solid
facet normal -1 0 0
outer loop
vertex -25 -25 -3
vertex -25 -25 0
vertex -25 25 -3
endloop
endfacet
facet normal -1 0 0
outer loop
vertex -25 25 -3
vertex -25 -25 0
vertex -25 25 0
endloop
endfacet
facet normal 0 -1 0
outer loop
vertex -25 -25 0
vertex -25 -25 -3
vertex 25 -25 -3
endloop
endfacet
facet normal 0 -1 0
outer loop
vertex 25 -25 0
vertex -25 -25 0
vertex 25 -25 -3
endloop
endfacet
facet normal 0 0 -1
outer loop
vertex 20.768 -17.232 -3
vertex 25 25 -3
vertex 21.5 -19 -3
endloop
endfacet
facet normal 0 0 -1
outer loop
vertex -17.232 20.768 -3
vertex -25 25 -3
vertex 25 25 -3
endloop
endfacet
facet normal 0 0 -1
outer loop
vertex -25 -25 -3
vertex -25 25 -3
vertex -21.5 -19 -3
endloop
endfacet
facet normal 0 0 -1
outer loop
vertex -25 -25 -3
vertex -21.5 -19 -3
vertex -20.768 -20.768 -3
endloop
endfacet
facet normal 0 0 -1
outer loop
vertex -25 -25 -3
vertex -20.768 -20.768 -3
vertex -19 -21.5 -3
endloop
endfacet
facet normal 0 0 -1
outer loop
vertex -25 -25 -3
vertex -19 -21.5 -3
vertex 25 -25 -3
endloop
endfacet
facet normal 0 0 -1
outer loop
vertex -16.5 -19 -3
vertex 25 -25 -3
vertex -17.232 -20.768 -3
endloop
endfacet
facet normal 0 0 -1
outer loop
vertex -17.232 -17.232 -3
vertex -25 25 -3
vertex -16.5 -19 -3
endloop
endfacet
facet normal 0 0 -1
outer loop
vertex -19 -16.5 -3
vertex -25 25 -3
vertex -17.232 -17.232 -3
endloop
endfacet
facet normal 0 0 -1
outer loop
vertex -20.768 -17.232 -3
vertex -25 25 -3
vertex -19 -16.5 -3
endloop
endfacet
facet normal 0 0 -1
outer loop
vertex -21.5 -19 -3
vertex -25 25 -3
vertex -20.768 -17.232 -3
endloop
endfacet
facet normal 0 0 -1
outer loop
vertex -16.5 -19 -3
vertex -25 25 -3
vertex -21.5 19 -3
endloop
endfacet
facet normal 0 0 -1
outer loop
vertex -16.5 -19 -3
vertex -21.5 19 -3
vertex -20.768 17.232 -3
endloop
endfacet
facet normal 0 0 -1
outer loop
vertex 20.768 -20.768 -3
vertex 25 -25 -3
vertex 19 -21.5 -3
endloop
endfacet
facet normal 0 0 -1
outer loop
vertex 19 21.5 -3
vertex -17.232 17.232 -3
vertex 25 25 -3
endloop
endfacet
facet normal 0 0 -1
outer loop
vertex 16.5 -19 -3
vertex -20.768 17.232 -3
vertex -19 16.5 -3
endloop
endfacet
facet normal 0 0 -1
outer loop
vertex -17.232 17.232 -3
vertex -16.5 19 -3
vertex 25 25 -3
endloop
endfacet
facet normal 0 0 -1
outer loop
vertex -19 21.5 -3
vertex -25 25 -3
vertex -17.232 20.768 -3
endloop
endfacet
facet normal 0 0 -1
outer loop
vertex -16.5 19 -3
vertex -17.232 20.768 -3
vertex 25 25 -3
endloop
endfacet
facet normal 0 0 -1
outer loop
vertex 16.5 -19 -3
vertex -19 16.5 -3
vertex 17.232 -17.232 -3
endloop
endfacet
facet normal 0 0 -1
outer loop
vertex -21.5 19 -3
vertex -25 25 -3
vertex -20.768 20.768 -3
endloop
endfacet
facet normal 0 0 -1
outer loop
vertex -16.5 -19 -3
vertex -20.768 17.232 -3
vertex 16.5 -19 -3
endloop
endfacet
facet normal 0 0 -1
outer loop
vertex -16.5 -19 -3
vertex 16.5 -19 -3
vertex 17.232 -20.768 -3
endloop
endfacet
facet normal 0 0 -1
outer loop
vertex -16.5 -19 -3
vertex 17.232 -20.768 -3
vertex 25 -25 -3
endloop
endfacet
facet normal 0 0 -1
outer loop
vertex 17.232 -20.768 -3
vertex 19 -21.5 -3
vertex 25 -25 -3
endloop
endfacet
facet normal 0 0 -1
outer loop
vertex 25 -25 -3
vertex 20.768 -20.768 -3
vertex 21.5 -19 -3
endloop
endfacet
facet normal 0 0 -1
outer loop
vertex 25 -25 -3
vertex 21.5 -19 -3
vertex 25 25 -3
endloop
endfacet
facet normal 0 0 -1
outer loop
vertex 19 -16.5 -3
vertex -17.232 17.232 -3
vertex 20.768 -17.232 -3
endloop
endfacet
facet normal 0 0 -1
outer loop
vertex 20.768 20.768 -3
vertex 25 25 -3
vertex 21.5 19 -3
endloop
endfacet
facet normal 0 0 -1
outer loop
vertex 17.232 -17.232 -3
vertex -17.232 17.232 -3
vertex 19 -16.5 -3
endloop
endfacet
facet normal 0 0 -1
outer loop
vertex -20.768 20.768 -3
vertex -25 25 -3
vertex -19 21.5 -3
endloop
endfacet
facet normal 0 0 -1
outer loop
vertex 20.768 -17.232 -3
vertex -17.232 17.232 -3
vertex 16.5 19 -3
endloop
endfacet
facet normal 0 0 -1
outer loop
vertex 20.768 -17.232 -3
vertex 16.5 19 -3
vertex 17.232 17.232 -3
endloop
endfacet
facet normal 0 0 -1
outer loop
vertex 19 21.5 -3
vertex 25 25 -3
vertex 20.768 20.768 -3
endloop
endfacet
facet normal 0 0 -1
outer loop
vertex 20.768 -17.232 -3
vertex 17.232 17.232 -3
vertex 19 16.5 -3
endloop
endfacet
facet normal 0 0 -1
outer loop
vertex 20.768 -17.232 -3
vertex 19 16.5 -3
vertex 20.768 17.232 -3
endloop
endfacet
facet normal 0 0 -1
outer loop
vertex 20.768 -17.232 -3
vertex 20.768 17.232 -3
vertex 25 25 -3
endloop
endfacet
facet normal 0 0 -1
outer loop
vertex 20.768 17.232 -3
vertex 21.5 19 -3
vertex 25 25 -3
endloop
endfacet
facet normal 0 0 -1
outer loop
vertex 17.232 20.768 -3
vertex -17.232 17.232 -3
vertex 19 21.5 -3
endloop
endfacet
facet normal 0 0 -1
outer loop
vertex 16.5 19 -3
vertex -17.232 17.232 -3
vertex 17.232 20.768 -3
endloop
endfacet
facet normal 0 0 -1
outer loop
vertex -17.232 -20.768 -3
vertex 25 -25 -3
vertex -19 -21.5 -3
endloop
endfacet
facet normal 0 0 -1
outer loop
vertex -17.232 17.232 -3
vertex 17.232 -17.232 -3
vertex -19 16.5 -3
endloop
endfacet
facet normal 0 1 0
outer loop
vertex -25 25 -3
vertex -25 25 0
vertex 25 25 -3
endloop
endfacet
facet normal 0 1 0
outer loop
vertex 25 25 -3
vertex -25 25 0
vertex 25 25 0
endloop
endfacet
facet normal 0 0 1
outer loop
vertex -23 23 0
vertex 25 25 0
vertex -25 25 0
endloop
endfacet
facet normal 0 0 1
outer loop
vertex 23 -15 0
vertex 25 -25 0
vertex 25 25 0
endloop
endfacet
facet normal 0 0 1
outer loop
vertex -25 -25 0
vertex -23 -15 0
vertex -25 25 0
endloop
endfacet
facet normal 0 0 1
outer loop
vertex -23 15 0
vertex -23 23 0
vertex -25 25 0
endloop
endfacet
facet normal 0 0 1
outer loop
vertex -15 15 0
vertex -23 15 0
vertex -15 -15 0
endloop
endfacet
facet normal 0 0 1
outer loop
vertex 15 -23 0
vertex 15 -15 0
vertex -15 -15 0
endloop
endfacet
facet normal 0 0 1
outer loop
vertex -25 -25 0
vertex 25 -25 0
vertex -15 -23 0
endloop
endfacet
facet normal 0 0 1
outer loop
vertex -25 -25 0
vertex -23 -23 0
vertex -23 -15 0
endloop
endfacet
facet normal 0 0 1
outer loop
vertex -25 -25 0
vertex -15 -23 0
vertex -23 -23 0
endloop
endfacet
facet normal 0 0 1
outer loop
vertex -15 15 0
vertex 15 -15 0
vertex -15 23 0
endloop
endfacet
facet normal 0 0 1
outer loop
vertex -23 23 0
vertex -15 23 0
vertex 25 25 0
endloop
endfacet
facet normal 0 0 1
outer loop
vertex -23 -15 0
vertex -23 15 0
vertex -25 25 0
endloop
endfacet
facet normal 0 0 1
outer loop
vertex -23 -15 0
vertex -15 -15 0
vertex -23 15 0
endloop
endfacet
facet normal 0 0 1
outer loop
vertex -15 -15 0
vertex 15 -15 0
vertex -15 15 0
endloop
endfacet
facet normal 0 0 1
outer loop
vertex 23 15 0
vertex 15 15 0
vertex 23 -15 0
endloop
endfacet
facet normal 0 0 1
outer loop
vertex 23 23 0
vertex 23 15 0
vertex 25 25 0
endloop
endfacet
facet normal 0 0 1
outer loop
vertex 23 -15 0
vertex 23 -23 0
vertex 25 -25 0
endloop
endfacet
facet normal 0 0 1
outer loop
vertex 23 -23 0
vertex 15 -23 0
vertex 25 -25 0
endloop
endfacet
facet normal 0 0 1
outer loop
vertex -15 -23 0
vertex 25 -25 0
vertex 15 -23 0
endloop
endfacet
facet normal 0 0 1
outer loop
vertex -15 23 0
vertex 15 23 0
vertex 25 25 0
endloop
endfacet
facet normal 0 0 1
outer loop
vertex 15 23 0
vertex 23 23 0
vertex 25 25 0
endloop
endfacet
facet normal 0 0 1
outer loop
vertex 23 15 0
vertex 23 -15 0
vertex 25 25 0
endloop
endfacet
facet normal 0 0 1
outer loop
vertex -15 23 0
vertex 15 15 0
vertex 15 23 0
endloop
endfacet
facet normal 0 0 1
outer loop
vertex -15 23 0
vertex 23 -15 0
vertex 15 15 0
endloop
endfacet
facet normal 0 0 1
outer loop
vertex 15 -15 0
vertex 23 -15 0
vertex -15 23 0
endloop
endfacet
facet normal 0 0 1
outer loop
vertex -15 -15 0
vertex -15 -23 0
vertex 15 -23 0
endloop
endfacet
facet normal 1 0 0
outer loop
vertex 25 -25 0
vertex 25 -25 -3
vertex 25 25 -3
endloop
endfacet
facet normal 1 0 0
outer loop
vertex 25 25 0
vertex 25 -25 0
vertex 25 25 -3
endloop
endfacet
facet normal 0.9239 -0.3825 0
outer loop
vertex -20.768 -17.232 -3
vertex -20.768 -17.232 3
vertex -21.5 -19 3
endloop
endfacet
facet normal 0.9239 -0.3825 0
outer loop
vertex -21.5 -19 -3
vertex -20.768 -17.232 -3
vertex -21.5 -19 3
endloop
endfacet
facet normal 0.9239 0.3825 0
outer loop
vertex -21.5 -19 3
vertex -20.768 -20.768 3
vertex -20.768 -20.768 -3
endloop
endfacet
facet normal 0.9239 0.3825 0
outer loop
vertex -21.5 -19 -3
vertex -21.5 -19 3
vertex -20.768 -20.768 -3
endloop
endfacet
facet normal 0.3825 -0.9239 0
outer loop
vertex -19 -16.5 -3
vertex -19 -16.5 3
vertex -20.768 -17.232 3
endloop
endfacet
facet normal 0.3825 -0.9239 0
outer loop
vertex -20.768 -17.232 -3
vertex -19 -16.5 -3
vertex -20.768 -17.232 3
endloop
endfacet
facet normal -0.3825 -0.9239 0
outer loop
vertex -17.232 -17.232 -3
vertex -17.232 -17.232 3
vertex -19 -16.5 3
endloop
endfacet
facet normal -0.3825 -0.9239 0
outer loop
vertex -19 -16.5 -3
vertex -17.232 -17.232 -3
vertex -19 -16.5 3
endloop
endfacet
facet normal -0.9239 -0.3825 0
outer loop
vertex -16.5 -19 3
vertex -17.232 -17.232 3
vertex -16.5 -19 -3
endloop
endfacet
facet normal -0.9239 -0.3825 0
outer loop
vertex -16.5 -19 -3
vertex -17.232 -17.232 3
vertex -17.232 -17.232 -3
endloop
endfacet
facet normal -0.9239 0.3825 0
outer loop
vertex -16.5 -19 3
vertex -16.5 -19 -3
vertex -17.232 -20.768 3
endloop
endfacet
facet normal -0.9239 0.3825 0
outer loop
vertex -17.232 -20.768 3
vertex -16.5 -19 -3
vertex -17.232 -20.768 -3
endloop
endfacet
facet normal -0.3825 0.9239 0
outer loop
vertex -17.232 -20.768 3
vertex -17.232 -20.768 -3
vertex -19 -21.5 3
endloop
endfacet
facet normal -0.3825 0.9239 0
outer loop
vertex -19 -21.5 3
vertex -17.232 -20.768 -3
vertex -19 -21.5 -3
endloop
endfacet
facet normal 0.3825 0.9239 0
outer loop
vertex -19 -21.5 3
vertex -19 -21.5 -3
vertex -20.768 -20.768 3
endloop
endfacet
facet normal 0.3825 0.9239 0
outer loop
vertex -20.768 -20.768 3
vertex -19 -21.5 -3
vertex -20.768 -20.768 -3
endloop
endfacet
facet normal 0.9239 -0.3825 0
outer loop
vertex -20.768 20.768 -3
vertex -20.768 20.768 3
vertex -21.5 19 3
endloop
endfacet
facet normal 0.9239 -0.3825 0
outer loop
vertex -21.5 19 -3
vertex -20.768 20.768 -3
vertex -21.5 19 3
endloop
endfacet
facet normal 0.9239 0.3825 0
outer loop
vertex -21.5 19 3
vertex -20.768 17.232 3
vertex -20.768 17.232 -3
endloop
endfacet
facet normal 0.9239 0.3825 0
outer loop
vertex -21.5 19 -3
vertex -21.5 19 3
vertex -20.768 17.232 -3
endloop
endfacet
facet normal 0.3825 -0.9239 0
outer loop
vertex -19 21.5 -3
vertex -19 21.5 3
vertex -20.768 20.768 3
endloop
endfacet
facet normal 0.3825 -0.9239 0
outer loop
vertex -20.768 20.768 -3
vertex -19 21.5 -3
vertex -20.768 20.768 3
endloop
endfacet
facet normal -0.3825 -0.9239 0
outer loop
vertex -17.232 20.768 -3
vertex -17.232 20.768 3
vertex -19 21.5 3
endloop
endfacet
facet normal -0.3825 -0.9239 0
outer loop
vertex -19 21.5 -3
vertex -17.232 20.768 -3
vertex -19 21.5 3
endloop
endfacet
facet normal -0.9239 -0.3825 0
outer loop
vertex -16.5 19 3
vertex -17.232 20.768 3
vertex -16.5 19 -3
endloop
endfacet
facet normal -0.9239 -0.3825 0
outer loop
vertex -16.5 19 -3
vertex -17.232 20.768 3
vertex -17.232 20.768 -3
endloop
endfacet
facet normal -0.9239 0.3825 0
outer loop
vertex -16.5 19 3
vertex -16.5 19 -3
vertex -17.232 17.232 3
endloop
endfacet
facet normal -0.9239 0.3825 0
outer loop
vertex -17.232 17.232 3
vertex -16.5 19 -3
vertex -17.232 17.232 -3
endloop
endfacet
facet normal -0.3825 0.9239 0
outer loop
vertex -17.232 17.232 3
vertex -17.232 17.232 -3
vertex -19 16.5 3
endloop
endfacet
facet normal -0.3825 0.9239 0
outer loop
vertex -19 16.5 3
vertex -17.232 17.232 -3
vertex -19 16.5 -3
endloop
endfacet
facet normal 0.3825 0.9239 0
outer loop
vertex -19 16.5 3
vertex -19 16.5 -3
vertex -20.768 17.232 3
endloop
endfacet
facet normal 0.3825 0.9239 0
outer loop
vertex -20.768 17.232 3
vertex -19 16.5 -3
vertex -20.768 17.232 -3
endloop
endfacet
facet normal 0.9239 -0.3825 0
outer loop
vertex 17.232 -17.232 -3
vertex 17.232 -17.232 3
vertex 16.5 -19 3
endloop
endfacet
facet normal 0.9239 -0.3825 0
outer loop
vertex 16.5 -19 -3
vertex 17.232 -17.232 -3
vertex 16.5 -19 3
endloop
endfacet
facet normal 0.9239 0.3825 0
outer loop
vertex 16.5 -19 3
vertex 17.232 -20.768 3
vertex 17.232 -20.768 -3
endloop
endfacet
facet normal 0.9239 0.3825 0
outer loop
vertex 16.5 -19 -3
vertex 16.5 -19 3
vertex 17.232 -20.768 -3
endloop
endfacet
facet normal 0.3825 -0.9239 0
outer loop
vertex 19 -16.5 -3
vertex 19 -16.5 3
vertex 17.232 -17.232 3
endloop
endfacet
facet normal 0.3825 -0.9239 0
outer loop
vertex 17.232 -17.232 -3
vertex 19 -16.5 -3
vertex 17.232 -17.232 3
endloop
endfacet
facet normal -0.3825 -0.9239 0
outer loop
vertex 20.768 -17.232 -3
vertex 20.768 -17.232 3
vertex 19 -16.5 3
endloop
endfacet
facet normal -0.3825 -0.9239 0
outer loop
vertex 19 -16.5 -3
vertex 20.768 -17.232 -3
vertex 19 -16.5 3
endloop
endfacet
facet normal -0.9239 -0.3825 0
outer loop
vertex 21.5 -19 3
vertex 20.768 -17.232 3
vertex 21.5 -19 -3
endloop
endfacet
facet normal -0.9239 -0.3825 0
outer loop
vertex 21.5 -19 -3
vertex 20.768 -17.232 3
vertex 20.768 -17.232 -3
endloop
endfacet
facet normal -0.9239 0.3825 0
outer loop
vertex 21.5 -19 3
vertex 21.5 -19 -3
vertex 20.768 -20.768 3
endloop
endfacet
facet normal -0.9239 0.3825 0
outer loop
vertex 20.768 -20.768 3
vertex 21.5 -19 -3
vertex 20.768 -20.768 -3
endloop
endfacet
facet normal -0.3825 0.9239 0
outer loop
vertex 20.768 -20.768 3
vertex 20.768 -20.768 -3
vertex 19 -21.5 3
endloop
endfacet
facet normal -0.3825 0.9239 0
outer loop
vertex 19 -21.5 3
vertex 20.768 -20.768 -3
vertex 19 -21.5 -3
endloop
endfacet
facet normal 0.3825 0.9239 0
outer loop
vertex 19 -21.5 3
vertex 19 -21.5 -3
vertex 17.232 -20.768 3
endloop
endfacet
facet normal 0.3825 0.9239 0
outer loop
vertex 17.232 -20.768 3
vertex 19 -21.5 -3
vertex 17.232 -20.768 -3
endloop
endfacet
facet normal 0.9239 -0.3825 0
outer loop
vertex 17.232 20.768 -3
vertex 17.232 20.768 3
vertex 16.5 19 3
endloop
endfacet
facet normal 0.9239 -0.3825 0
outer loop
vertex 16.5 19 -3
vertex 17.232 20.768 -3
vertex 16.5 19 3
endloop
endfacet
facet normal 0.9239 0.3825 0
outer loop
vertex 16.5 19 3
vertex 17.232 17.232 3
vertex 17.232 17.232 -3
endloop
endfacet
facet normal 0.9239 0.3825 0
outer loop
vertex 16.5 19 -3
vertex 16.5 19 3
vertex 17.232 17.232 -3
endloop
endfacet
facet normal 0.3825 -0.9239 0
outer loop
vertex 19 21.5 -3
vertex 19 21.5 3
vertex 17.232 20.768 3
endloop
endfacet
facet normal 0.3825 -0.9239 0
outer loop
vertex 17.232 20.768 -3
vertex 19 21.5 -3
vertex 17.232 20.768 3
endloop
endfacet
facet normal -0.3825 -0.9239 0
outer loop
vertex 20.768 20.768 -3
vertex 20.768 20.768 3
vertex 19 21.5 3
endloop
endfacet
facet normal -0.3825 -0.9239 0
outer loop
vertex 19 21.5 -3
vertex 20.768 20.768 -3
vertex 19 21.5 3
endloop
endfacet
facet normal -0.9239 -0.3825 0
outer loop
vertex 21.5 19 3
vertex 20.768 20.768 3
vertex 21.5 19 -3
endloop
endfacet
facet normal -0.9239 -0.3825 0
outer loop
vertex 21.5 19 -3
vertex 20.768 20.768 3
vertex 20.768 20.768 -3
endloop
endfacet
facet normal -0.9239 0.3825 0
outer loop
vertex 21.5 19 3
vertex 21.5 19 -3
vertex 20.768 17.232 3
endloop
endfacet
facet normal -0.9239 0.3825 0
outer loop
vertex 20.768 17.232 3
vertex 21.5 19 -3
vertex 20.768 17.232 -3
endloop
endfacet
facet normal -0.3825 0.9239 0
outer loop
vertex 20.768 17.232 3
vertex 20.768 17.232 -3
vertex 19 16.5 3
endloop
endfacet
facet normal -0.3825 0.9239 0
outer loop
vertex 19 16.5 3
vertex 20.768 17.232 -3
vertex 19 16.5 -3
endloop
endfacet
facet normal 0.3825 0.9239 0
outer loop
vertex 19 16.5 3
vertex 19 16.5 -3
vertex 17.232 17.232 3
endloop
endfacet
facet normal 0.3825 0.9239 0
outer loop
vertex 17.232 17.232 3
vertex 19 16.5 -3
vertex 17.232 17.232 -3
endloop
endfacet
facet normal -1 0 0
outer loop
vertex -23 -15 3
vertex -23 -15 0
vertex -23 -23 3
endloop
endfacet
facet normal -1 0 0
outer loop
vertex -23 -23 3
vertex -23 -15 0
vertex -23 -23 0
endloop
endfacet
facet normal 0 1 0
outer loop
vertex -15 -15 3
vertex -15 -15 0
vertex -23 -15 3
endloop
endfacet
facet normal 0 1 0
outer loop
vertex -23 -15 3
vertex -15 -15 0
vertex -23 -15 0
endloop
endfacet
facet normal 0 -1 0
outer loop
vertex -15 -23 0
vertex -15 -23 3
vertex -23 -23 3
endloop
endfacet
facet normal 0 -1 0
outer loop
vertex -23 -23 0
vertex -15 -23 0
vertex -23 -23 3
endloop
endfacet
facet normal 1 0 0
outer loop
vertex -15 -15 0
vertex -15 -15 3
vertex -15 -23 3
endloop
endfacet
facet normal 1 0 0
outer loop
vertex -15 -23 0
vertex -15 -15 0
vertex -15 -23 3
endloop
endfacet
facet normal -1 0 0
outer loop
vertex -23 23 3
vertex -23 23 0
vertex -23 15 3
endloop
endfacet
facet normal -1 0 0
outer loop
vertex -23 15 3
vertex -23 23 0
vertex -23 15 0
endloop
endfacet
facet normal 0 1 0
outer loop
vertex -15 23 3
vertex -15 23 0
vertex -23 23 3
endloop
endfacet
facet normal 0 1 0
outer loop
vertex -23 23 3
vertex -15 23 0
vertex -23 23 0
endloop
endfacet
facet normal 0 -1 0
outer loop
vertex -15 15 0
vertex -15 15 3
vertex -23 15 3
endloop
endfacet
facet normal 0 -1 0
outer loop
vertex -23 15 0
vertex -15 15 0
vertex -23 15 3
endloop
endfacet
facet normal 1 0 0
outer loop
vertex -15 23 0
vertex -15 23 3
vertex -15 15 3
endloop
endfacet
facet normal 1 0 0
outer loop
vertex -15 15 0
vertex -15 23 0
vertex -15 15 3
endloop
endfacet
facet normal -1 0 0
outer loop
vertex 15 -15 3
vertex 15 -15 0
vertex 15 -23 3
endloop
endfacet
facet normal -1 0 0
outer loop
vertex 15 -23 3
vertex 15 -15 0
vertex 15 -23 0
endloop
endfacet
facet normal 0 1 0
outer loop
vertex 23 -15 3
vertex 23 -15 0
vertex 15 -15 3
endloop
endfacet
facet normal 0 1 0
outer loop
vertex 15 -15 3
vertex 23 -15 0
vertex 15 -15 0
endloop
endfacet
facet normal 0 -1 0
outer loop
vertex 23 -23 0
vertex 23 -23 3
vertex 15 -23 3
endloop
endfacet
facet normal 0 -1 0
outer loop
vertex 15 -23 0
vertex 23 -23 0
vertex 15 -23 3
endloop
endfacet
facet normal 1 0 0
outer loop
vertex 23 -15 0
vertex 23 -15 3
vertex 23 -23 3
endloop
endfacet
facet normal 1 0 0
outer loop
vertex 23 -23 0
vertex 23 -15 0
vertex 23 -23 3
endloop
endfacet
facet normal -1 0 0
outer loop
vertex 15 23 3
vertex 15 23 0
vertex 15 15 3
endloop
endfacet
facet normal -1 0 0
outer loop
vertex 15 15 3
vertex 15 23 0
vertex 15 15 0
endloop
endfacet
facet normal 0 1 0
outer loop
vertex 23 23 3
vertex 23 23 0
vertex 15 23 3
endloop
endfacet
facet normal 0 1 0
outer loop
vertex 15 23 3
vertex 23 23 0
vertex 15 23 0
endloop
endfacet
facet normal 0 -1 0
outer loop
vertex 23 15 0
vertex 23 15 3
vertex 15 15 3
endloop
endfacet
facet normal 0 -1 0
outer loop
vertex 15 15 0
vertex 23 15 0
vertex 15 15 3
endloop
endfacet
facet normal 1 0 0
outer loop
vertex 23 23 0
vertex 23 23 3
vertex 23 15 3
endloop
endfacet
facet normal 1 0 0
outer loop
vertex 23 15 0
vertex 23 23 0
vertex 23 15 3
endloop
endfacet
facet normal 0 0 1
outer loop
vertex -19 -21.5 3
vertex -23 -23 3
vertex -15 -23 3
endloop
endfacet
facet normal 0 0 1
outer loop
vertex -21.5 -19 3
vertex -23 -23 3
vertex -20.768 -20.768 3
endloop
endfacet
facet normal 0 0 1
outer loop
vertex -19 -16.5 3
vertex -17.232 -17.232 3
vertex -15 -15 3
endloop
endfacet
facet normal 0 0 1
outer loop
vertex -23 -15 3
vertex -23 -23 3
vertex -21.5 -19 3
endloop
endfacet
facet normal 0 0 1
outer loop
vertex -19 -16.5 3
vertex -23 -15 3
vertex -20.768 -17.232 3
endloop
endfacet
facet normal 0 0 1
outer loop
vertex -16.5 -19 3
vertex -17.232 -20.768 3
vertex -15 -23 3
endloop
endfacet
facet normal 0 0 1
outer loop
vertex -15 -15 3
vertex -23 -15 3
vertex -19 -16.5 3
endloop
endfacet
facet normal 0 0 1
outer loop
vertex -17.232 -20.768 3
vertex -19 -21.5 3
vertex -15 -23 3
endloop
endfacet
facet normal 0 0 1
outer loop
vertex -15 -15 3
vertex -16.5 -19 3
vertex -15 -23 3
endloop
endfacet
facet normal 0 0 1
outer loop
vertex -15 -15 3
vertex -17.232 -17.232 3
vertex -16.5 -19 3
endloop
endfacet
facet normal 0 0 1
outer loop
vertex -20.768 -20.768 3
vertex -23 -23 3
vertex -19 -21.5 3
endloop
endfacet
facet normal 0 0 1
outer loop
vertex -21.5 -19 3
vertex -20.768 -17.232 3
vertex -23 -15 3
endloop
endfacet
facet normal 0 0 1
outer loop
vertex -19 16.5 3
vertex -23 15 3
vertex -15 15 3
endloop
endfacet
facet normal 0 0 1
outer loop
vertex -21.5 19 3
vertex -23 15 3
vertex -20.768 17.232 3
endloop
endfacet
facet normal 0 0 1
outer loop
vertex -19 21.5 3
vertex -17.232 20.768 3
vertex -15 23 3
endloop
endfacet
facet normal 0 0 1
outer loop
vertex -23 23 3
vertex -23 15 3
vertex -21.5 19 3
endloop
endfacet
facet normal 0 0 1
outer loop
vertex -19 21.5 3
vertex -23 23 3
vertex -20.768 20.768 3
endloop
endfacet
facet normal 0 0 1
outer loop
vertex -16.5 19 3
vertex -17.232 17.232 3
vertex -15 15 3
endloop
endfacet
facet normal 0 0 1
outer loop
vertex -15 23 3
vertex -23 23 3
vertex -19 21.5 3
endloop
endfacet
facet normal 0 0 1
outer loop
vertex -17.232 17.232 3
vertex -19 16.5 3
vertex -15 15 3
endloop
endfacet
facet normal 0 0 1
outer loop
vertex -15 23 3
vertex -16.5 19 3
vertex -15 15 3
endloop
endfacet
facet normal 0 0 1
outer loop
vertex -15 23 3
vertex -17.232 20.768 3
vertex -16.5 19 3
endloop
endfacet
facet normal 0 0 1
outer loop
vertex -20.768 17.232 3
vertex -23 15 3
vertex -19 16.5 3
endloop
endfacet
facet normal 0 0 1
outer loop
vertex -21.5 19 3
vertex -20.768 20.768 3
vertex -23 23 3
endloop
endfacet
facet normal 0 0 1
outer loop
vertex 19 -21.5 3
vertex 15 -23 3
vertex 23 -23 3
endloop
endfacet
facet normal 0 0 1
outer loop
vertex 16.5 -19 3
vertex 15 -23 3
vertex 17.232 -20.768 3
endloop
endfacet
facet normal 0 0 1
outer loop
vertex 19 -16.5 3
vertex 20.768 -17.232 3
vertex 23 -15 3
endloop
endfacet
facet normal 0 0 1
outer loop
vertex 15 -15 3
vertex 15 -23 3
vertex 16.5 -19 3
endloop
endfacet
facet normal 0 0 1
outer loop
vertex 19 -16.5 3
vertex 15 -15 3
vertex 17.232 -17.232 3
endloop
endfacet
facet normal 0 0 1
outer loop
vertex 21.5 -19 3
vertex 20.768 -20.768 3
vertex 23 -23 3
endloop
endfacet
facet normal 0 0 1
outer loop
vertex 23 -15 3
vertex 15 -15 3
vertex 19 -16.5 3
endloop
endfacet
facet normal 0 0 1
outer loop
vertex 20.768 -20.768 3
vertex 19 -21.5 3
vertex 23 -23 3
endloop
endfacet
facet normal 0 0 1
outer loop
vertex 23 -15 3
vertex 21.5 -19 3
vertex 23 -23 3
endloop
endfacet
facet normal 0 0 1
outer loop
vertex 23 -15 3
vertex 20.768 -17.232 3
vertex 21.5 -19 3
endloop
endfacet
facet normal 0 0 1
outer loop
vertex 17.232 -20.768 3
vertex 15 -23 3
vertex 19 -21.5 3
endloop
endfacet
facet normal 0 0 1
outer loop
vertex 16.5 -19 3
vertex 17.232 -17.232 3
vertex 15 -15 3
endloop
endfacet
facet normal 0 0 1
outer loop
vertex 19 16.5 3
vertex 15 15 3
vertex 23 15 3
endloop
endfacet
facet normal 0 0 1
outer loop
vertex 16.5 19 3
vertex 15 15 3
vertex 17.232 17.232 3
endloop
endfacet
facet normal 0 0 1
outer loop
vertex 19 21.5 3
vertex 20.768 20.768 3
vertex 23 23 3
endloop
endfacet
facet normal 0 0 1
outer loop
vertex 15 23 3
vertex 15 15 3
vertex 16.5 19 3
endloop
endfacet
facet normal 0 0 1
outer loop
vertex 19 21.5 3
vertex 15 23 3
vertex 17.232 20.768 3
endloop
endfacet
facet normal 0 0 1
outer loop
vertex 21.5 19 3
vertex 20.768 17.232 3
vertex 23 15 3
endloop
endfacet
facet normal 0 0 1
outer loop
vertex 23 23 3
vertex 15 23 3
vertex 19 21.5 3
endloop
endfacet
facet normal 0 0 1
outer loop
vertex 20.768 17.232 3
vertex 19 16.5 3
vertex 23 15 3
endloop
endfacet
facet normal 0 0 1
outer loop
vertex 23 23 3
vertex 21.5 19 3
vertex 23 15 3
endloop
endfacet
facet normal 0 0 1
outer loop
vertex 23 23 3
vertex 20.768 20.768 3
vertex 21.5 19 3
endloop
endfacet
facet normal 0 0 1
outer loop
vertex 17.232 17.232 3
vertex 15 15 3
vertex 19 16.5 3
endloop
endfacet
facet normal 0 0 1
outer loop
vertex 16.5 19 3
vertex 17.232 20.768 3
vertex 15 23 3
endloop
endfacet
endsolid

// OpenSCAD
module plugbox()
{

	/* Drill a hole all the way through the object. */
	module drill_full(x,y) {
		translate([x,y,0]) {
			cylinder(r=1.8, h=55, center=true);
		}
	}

	/* Drill a hole that only extends to the top of the cavity. */
	module drill_standoff(x,y) {
		translate([x,y,-1]) {
			cylinder(r=2.5, h=height+4, center=true);
		}
	}

	difference() {
		/* Create outside dimensions */
		cube([size, size, height], center=true);
		
		/* Dish out the center */
		translate([0,0,2]) {
			cube([size, size-20, 4], center=true); 
			cube([size-20, size, 4], center=true);        
		}

		translate([-size/2,0,2])
			cube([4,size,4],center=true);
		translate([size/2,0,2])
			cube([4,size,4],center=true);
		translate([0,-size/2,2])
			cube([size,4,4],center=true);
		translate([0,size/2,2])
			cube([size,4,4],center=true);

		/* Create holes for standoffs */
		drill_standoff((size-12)/2, (size-12)/2);
		drill_standoff(-(size-12)/2, (size-12)/2);
		drill_standoff((size-12)/2, -(size-12)/2);
		drill_standoff(-(size-12)/2, -(size-12)/2);
	}

	size = 50;
	height=6;
}

plugbox();
